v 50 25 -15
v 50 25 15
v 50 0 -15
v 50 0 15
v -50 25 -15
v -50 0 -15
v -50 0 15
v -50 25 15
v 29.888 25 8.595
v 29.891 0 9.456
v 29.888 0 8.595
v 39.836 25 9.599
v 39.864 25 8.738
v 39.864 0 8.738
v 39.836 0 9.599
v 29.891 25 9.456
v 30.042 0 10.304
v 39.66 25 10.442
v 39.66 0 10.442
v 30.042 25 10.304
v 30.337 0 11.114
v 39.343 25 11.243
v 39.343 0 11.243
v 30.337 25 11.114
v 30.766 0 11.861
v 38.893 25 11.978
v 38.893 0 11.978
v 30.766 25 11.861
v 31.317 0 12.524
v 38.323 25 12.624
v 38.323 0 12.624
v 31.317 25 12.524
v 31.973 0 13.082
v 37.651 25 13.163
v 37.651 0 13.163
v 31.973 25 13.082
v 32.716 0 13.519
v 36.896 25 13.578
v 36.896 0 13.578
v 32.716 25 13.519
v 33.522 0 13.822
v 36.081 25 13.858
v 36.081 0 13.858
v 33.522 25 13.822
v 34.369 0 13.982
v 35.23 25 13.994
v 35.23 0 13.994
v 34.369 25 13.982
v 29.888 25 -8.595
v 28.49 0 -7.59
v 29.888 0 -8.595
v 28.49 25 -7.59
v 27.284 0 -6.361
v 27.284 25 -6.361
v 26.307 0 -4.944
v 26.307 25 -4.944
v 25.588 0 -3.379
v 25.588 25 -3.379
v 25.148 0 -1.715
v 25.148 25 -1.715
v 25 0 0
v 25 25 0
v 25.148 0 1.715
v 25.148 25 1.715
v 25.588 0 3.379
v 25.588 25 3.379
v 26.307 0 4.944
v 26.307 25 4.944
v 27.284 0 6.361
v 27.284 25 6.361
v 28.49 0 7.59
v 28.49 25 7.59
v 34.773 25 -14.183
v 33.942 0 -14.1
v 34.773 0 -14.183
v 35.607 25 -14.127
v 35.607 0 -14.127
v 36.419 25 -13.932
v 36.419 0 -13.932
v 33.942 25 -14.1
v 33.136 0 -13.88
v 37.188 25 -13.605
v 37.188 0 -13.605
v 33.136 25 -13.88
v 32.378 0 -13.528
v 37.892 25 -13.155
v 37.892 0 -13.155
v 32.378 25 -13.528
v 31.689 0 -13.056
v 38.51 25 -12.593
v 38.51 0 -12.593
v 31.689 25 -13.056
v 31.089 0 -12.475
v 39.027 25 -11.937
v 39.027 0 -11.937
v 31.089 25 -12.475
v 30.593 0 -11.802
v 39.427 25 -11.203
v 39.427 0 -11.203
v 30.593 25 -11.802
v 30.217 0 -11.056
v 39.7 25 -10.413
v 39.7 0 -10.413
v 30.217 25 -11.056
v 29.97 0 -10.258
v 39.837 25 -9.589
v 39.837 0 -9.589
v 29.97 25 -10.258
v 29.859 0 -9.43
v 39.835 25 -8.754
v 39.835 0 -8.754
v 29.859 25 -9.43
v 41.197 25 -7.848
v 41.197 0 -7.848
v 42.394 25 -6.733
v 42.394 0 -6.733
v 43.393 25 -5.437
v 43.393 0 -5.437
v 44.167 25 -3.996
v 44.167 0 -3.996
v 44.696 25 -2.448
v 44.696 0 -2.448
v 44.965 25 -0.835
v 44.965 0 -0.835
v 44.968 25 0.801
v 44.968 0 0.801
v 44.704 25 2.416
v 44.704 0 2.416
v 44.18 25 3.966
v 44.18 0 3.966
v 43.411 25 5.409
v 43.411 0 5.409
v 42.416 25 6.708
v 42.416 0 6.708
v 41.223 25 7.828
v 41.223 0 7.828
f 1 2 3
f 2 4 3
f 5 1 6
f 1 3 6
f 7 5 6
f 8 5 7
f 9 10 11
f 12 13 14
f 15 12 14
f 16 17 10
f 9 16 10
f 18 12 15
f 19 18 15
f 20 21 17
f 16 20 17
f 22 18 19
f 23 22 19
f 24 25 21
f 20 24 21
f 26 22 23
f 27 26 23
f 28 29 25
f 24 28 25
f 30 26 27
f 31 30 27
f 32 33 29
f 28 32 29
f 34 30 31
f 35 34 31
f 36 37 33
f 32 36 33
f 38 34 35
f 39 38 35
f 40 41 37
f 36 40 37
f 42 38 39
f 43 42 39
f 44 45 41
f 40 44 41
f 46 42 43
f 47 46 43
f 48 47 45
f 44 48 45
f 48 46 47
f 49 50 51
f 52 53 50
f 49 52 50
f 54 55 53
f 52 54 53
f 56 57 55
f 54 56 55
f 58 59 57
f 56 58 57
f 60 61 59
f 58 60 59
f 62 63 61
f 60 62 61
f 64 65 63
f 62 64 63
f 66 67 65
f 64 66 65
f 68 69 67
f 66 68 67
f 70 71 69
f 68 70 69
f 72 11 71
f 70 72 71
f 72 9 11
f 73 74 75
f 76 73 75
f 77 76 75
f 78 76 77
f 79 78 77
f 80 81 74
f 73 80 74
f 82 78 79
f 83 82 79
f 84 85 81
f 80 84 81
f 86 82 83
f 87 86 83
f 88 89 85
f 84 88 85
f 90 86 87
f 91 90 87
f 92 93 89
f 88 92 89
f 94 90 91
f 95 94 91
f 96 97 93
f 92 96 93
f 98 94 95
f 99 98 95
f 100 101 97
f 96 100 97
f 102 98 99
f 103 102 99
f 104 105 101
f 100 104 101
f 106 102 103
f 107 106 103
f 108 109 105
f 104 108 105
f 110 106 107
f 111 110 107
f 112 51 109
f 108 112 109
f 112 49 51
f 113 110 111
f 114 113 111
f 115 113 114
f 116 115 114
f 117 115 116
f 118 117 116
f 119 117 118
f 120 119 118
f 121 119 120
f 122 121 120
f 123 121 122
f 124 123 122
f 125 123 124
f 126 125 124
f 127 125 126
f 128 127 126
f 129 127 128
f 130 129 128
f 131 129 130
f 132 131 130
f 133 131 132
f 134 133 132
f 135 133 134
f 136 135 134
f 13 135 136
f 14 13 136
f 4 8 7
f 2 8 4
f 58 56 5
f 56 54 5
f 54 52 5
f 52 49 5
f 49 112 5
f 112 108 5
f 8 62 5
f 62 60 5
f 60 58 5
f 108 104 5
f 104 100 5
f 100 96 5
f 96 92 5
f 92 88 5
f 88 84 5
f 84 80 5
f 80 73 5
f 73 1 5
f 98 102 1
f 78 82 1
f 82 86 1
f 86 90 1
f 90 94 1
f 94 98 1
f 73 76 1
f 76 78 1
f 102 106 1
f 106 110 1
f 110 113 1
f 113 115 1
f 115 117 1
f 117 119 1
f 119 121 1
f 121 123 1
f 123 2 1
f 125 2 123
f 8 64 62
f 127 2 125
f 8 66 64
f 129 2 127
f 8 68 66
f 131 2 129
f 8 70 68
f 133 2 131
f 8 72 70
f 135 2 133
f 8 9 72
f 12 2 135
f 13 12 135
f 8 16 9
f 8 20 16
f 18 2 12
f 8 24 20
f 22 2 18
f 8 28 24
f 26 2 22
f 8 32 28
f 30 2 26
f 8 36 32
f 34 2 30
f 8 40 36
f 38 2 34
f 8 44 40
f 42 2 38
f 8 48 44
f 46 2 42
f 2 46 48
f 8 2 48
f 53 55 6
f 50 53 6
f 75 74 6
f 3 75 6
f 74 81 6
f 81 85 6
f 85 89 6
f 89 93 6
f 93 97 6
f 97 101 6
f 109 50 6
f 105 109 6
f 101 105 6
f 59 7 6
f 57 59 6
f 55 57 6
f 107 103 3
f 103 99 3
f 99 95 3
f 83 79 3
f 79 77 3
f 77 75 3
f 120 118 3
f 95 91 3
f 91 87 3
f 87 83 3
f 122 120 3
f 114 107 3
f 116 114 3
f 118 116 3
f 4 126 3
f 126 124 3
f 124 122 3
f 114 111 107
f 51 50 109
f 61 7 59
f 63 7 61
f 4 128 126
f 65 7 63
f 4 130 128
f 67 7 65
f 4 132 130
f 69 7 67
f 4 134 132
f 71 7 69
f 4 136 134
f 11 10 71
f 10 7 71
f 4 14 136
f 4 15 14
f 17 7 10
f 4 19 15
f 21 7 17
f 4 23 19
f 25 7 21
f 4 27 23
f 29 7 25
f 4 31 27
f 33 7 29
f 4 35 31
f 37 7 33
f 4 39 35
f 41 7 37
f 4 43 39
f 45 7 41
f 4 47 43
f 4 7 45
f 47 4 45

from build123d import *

# Parameters (mm, degrees)
SKETCH_1_W      = 100
SKETCH_1_H      = 30
EXTRUDE_3_DEPTH = 25


with BuildPart() as part:
    # 草图1 → 凸台-拉伸3 (new body)
    with BuildSketch(Plane(origin=(0, 0, 0), x_dir=(1, 0, 0), z_dir=(0, 1, 0))):
        Rectangle(SKETCH_1_W, SKETCH_1_H)
        with BuildLine():
            ThreePointArc((39.834535229, 8.75370031), (43.612356016, 5.082059017), (45, 0))
            ThreePointArc((45, 0), (43.620805853, -5.067712151), (39.863658712, -8.737552514))
            ThreePointArc((39.863658712, -8.737552514), (34.79927033, -14.006397834), (29.887949458, -8.594587789))
            ThreePointArc((29.887949458, -8.594587789), (25, 0), (29.887949458, 8.594587789))
            ThreePointArc((29.887949458, 8.594587789), (34.773112936, 14.183369273), (39.834535229, 8.75370031))
        make_face(mode=Mode.SUBTRACT)
    extrude(amount=EXTRUDE_3_DEPTH)


solid = part.part
